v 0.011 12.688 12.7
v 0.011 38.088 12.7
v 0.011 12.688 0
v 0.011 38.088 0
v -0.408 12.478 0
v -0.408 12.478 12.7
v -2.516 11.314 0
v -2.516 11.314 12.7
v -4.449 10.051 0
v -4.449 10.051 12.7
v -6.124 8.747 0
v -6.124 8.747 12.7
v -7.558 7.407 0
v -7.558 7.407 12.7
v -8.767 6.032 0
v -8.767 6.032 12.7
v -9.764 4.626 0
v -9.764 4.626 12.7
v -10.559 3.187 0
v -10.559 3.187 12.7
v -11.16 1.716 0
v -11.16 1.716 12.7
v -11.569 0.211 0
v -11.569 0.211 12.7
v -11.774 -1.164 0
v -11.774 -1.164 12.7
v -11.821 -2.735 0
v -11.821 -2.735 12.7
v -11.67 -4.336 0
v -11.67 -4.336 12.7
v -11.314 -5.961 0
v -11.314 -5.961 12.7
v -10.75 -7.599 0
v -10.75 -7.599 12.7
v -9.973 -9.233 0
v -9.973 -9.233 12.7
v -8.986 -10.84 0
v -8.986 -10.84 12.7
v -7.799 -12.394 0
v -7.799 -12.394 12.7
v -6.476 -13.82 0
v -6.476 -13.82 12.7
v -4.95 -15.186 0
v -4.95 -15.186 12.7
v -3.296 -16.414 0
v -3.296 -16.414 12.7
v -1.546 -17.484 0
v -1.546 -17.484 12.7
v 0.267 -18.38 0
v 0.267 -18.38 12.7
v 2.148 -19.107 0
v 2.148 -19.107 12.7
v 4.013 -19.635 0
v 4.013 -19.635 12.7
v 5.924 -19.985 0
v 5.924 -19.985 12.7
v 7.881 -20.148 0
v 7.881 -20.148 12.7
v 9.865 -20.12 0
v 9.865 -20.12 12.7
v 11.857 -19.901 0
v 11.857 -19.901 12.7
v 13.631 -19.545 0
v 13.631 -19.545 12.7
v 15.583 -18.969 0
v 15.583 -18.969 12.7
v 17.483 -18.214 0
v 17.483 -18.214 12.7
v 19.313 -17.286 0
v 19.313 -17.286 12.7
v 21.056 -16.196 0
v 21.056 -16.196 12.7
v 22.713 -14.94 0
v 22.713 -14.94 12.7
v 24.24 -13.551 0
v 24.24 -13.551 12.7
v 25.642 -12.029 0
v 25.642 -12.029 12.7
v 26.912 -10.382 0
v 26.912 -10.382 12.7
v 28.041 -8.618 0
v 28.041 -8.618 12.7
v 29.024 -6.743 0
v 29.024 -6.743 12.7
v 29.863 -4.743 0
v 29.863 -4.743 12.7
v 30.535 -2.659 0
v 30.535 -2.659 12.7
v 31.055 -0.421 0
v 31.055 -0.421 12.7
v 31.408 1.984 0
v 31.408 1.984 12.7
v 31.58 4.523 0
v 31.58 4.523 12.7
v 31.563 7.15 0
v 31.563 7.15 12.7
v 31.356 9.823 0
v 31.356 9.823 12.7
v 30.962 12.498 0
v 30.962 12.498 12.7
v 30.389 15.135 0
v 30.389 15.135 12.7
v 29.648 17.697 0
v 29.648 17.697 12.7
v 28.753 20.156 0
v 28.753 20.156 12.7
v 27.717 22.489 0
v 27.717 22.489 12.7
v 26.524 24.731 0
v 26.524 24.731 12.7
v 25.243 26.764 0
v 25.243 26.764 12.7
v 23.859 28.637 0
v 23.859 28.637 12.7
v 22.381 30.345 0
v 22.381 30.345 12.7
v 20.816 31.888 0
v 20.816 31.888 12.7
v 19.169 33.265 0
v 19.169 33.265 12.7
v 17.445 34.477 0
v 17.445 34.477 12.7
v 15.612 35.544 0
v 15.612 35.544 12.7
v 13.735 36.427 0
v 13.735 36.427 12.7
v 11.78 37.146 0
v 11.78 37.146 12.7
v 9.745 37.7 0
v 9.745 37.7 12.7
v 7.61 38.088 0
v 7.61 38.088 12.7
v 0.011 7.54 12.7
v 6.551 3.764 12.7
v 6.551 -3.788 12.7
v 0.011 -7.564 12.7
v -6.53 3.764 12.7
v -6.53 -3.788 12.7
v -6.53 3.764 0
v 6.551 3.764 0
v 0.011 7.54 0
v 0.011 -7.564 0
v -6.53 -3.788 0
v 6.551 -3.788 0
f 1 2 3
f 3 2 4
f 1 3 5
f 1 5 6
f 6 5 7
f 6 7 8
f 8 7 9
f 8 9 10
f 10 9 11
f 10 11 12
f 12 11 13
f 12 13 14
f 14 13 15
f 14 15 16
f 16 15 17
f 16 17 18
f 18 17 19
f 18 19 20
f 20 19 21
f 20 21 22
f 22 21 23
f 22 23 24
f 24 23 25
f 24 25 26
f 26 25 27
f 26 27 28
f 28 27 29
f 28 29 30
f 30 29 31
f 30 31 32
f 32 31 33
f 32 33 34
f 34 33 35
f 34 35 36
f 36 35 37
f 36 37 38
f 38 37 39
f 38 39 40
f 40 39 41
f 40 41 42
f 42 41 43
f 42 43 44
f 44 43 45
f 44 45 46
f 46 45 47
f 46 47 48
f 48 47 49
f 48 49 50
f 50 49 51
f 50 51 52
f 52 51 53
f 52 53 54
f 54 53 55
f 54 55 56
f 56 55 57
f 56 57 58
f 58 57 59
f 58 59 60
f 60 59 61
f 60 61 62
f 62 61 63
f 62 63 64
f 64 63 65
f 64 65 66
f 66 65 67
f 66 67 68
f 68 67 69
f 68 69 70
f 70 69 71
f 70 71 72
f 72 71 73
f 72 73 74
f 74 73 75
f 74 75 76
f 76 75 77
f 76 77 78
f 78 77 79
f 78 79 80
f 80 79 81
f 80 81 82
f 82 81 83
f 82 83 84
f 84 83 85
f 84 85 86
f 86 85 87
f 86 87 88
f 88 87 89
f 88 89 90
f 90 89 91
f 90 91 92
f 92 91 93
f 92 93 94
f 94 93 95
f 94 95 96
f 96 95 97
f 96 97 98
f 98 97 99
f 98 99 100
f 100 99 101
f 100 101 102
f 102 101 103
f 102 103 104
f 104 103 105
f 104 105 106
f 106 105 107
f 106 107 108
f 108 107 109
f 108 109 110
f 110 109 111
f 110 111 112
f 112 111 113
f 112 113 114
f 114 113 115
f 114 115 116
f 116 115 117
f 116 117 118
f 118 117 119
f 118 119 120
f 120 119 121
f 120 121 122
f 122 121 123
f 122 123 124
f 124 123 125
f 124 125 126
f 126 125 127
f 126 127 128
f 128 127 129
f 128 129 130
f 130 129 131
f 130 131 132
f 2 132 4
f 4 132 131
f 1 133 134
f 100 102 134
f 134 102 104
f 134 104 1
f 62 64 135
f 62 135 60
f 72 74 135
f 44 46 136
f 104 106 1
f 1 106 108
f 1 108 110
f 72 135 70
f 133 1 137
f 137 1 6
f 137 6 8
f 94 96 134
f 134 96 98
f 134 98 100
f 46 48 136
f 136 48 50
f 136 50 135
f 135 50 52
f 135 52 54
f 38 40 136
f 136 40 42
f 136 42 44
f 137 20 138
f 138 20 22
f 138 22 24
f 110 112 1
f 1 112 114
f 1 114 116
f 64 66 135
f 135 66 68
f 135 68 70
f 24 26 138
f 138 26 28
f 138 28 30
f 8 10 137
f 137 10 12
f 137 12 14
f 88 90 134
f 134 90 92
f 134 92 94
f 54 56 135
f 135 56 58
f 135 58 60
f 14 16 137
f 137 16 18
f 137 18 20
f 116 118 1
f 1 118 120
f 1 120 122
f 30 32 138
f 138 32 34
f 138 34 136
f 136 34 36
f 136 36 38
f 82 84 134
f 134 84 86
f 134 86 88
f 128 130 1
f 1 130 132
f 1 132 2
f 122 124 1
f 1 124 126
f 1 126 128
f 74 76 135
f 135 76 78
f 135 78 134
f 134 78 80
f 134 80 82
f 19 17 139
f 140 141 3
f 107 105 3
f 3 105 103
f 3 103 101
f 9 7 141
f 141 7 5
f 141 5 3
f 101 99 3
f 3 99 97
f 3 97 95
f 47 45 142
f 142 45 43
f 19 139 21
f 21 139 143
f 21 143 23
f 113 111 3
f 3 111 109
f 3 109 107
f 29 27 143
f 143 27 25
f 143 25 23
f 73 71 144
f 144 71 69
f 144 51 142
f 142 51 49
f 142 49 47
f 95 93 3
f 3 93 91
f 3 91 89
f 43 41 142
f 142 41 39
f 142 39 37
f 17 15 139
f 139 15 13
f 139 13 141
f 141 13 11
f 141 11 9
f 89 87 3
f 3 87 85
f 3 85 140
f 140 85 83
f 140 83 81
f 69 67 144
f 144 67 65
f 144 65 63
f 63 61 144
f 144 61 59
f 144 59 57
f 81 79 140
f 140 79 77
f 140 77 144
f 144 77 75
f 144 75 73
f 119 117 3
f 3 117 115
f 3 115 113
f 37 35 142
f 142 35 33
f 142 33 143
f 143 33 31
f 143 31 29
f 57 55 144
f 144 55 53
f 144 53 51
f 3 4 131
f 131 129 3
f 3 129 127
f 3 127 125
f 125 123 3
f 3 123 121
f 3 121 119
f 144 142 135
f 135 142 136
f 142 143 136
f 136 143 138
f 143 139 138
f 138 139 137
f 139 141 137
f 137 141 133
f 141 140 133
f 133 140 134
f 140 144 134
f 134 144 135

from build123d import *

# Parameters (mm, degrees)
BOSS_EXTRUDE1_DEPTH = 12.7
CUT_EXTRUDE1_DEPTH  = 52.093515348


with BuildPart() as part:
    # Sketch1 → Boss-Extrude1 (new body)
    with BuildSketch(Plane.XY):
        with BuildLine():
            Line((0, 38.1), (0, 12.7))
            add(Edge.make_bspline(
                [(7.599767601, 38.1), (26.246073074, 35.529347142), (41.164337366, -6.756573634), (-0.46828552, -31.547387173), (-21.773032453, 1.949257827), (0, 12.7)],
                knots=[0.037945328, 0.037945328, 0.037945328, 0.037945328, 0.338030766, 0.620420862, 1, 1, 1, 1], degree=3))
            Line((7.599767601, 38.1), (0, 38.1))
        make_face()
        with BuildLine():
            ThreePointArc((3.175, 0), (-2.24506403, -2.24506403), (0, 3.175))
            ThreePointArc((0, 3.175), (2.24506403, 2.24506403), (3.175, 0))
        make_face(mode=Mode.SUBTRACT)
    extrude(amount=BOSS_EXTRUDE1_DEPTH)

    # Sketch2 → Cut-Extrude1 (cut, through all)
    with BuildSketch(Plane.XY.offset(12.7)):
        Polygon((6.5405, -3.776159436), (6.5405, 3.776159436), (0, 7.552318871), (-6.5405, 3.776159436), (-6.5405, -3.776159436), (0, -7.552318871), align=None)
    extrude(amount=-CUT_EXTRUDE1_DEPTH, mode=Mode.SUBTRACT)


solid = part.part
